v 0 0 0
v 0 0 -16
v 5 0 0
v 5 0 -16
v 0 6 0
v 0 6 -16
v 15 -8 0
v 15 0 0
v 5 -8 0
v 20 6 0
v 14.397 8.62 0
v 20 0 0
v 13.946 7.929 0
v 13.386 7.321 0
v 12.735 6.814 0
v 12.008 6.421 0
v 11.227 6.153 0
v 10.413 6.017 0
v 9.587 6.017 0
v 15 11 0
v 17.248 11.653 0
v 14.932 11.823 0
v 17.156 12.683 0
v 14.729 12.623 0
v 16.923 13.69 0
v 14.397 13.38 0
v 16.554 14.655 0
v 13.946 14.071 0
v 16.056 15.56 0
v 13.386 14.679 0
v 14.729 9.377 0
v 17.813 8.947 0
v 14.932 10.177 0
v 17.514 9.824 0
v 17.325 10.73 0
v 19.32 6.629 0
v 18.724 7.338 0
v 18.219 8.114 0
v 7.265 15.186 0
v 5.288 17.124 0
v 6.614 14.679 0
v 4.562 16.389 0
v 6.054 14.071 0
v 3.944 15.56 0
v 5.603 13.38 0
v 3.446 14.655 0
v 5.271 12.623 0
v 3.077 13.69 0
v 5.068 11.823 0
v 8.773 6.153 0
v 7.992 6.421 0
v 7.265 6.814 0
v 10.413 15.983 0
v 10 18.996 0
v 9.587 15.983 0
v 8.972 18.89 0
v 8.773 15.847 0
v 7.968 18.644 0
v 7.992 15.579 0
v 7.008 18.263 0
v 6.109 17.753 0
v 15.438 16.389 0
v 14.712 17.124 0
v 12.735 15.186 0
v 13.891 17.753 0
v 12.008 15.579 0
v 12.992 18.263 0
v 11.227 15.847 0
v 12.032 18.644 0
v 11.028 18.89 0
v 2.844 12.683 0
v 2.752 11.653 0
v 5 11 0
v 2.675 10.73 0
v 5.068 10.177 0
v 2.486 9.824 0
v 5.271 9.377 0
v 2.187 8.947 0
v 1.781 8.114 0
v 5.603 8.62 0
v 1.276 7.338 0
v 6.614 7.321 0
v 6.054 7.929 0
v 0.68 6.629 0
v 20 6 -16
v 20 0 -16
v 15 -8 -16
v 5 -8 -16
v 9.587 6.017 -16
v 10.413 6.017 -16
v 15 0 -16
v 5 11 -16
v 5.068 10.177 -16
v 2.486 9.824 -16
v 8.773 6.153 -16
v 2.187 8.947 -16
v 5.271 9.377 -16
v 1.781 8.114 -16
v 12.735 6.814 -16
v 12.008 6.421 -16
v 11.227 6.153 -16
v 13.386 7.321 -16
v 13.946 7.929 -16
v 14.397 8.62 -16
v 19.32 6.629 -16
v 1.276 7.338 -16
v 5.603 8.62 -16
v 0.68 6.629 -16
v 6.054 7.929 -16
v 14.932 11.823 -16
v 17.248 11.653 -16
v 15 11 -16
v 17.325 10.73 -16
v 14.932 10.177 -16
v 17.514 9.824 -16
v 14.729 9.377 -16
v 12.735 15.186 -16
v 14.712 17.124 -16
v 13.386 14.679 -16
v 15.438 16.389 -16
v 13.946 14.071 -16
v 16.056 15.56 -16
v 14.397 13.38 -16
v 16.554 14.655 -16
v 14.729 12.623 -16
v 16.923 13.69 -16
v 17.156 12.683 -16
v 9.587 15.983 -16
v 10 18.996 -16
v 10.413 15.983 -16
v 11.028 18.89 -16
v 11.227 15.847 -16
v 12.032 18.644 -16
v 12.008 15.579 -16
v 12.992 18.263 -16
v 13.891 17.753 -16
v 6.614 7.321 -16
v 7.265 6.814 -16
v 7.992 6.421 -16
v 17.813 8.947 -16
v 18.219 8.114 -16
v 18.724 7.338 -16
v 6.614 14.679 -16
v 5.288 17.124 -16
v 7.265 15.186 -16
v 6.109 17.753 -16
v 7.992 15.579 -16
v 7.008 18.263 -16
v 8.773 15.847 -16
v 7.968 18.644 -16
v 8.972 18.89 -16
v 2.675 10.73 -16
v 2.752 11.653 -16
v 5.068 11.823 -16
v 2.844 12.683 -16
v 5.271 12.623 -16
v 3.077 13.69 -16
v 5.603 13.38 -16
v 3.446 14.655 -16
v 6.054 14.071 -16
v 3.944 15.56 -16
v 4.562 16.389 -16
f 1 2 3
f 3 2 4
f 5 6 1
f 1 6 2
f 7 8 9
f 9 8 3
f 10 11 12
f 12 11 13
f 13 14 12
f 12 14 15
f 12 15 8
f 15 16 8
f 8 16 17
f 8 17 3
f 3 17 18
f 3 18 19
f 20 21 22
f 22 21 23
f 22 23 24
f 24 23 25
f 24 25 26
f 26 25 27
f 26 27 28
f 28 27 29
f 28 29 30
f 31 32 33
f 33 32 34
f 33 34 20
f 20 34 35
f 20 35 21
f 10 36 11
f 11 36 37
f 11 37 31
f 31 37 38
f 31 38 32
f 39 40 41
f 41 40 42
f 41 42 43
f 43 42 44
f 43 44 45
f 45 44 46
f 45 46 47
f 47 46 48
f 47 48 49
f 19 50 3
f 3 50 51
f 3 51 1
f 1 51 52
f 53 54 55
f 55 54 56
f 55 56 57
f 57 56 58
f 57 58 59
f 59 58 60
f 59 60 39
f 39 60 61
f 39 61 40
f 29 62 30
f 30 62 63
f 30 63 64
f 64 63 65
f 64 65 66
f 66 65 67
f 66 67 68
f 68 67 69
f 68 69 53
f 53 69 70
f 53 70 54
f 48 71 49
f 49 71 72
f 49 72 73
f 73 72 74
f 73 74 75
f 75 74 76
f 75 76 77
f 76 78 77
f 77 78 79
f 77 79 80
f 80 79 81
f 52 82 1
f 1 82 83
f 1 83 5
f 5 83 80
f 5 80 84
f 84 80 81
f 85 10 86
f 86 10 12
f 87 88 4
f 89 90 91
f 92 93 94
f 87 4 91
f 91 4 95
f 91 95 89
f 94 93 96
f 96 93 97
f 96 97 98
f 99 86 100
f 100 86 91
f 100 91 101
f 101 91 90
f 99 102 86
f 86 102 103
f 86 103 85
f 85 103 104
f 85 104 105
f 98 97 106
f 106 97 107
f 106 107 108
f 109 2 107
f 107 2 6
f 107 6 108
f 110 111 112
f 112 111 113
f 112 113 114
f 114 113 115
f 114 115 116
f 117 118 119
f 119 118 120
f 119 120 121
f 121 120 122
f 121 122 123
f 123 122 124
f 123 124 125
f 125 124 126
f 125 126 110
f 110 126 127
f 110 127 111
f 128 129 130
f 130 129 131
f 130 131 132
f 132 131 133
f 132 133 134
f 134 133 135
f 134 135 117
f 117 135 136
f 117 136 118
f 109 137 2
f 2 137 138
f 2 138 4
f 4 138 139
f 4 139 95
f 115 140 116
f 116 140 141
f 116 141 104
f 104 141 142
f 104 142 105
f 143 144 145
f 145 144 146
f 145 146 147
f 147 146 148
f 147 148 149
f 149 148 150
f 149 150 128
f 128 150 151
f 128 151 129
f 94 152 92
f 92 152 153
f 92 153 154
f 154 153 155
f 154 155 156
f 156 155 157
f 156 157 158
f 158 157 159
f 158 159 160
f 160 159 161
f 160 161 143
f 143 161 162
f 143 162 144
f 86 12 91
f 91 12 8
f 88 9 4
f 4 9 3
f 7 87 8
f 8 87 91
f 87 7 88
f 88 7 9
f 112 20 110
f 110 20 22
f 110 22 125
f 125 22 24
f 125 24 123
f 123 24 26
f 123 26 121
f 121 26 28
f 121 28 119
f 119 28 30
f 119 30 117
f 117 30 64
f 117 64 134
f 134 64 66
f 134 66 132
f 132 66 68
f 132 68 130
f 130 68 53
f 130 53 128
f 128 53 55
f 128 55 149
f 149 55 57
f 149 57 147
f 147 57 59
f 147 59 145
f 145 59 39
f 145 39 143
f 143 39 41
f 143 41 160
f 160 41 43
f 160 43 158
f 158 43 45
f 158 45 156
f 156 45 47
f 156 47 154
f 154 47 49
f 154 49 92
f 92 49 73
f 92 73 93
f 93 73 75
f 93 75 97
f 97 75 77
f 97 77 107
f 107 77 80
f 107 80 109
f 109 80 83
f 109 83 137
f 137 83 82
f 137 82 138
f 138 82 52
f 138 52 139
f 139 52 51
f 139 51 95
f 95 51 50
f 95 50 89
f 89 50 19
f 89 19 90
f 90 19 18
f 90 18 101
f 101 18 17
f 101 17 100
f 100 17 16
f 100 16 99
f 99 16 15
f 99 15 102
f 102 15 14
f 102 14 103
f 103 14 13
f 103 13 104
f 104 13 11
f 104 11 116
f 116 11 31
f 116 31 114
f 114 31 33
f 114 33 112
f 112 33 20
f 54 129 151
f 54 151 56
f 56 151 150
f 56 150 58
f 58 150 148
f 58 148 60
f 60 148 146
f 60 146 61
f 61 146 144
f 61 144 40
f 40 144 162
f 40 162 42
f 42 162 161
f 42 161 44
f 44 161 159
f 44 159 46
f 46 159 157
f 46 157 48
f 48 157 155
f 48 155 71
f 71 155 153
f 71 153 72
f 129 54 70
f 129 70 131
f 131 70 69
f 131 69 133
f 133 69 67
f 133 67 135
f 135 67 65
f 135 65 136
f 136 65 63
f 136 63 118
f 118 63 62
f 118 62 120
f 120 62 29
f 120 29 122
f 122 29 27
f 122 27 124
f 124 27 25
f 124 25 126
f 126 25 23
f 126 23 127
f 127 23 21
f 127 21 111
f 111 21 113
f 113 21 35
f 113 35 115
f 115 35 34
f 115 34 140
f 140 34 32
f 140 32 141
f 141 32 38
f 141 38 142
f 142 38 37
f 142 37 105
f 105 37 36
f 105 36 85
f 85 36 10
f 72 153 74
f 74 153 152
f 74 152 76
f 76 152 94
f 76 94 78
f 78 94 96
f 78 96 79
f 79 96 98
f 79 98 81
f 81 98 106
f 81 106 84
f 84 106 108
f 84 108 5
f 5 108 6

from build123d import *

# Parameters (mm, degrees)
SKETCH6_W           = 20
SKETCH6_H           = 16
BOSS_EXTRUDE5_DEPTH = 6
SKETCH7_W           = 10
SKETCH7_H           = 16
BOSS_EXTRUDE6_DEPTH = 8
SKETCH8_W           = 14.5
SKETCH8_H           = 16
BOSS_EXTRUDE7_DEPTH = 13
SKETCH9_R           = 5
CUT_EXTRUDE1_DEPTH  = 32.890437438
FILLET1_R           = 7.5
FILLET2_R           = 7.5


with BuildPart() as part:
    # Sketch6 → Boss-Extrude5 (new body)
    with BuildSketch(Plane(origin=(0, 0, 0), x_dir=(1, 0, 0), z_dir=(0, 1, 0))):
        with Locations((10, 8)):
            Rectangle(SKETCH6_W, SKETCH6_H)
    extrude(amount=BOSS_EXTRUDE5_DEPTH)

    # Sketch7 → Boss-Extrude6 (add)
    with BuildSketch(Plane.XZ):
        with Locations((10, -8)):
            Rectangle(SKETCH7_W, SKETCH7_H)
    extrude(amount=BOSS_EXTRUDE6_DEPTH)

    # Sketch8 → Boss-Extrude7 (add)
    with BuildSketch(Plane(origin=(0, 6, 0), x_dir=(1, 0, 0), z_dir=(0, 1, 0))):
        with Locations((10, 8)):
            Rectangle(SKETCH8_W, SKETCH8_H)
    extrude(amount=BOSS_EXTRUDE7_DEPTH)

    # Sketch9 → Cut-Extrude1 (cut, through all)
    with BuildSketch(Plane.XY):
        with Locations((10, 11)):
            Circle(SKETCH9_R)
    extrude(amount=-CUT_EXTRUDE1_DEPTH, mode=Mode.SUBTRACT)

    # Fillet1
    # the kernel refuses this fillet: 7.5 mm, written as the material it takes off along each edge
    with BuildSketch(Plane(origin=(17.25, 19, -34.75), x_dir=(-1, 0, 0), z_dir=(0, 0, 1))) as fillet1_piece_1:
        with BuildLine():
            CenterArc((FILLET1_R, FILLET1_R), FILLET1_R, 180, 90)
            Line((0, FILLET1_R), (0, 0))
            Line((0, 0), (FILLET1_R, 0))
        make_face()
    extrude(amount=53.5, mode=Mode.SUBTRACT)
    with BuildSketch(Plane(origin=(2.75, 19, 18.75), x_dir=(0, -1, 0), z_dir=(0, 0, -1))) as fillet1_piece_2:
        with BuildLine():
            CenterArc((FILLET1_R, -FILLET1_R), FILLET1_R, 90, 90)
            Line((0, -FILLET1_R), (0, 0))
            Line((0, 0), (FILLET1_R, 0))
        make_face()
    extrude(amount=53.5, mode=Mode.SUBTRACT)

    # Fillet2
    # the kernel refuses this fillet: 7.5 mm, written as the material it adds along each edge
    with BuildSketch(Plane(origin=(17.25, 6, -16), x_dir=(1, 0, 0), z_dir=(0, 0, 1))) as fillet2_piece_1:
        with BuildLine():
            CenterArc((7.496865043, 5.806657581), FILLET2_R, 181.171427285, 49.563032728)
            Line((-0.001567478, 5.65332879), (-0.75141073, 5.637995911))
            ThreePointArc((-0.75141073, 5.637995911), (-0.75, 5.5), (-0.75, 0))
            Line((-0.75, 0), (0, -0.75))
            ThreePointArc((0, -0.75), (1.375, -0.75), (2.275313496, -0.580665758))
            Line((2.275313496, -0.580665758), (2.75, 0))
        make_face()
    extrude(amount=16)
    with BuildSketch(Plane(origin=(2.75, 6, 0), x_dir=(0.00027726642617420565, 0.9999999615616638, 0), z_dir=(0, 0, -1))) as fillet2_piece_2:
        with BuildLine():
            CenterArc((5.804578729, -7.498474746), FILLET2_R, 91.155541089, 49.563032728)
            Line((-0.000762483, -2.749999894), (-0.581296604, -2.275152409))
            ThreePointArc((-0.581296604, -2.275152409), (-0.750381213, -1.374791997), (-0.749999971, 0.00020795))
            Line((-0.749999971, 0.00020795), (0.00020795, 0.749999971))
            ThreePointArc((0.00020795, 0.749999971), (5.500207738, 0.748475006), (5.638204036, 0.749847475))
            Line((5.638204036, 0.749847475), (5.653329008, 0))
        make_face()
    extrude(amount=16)


solid = part.part
